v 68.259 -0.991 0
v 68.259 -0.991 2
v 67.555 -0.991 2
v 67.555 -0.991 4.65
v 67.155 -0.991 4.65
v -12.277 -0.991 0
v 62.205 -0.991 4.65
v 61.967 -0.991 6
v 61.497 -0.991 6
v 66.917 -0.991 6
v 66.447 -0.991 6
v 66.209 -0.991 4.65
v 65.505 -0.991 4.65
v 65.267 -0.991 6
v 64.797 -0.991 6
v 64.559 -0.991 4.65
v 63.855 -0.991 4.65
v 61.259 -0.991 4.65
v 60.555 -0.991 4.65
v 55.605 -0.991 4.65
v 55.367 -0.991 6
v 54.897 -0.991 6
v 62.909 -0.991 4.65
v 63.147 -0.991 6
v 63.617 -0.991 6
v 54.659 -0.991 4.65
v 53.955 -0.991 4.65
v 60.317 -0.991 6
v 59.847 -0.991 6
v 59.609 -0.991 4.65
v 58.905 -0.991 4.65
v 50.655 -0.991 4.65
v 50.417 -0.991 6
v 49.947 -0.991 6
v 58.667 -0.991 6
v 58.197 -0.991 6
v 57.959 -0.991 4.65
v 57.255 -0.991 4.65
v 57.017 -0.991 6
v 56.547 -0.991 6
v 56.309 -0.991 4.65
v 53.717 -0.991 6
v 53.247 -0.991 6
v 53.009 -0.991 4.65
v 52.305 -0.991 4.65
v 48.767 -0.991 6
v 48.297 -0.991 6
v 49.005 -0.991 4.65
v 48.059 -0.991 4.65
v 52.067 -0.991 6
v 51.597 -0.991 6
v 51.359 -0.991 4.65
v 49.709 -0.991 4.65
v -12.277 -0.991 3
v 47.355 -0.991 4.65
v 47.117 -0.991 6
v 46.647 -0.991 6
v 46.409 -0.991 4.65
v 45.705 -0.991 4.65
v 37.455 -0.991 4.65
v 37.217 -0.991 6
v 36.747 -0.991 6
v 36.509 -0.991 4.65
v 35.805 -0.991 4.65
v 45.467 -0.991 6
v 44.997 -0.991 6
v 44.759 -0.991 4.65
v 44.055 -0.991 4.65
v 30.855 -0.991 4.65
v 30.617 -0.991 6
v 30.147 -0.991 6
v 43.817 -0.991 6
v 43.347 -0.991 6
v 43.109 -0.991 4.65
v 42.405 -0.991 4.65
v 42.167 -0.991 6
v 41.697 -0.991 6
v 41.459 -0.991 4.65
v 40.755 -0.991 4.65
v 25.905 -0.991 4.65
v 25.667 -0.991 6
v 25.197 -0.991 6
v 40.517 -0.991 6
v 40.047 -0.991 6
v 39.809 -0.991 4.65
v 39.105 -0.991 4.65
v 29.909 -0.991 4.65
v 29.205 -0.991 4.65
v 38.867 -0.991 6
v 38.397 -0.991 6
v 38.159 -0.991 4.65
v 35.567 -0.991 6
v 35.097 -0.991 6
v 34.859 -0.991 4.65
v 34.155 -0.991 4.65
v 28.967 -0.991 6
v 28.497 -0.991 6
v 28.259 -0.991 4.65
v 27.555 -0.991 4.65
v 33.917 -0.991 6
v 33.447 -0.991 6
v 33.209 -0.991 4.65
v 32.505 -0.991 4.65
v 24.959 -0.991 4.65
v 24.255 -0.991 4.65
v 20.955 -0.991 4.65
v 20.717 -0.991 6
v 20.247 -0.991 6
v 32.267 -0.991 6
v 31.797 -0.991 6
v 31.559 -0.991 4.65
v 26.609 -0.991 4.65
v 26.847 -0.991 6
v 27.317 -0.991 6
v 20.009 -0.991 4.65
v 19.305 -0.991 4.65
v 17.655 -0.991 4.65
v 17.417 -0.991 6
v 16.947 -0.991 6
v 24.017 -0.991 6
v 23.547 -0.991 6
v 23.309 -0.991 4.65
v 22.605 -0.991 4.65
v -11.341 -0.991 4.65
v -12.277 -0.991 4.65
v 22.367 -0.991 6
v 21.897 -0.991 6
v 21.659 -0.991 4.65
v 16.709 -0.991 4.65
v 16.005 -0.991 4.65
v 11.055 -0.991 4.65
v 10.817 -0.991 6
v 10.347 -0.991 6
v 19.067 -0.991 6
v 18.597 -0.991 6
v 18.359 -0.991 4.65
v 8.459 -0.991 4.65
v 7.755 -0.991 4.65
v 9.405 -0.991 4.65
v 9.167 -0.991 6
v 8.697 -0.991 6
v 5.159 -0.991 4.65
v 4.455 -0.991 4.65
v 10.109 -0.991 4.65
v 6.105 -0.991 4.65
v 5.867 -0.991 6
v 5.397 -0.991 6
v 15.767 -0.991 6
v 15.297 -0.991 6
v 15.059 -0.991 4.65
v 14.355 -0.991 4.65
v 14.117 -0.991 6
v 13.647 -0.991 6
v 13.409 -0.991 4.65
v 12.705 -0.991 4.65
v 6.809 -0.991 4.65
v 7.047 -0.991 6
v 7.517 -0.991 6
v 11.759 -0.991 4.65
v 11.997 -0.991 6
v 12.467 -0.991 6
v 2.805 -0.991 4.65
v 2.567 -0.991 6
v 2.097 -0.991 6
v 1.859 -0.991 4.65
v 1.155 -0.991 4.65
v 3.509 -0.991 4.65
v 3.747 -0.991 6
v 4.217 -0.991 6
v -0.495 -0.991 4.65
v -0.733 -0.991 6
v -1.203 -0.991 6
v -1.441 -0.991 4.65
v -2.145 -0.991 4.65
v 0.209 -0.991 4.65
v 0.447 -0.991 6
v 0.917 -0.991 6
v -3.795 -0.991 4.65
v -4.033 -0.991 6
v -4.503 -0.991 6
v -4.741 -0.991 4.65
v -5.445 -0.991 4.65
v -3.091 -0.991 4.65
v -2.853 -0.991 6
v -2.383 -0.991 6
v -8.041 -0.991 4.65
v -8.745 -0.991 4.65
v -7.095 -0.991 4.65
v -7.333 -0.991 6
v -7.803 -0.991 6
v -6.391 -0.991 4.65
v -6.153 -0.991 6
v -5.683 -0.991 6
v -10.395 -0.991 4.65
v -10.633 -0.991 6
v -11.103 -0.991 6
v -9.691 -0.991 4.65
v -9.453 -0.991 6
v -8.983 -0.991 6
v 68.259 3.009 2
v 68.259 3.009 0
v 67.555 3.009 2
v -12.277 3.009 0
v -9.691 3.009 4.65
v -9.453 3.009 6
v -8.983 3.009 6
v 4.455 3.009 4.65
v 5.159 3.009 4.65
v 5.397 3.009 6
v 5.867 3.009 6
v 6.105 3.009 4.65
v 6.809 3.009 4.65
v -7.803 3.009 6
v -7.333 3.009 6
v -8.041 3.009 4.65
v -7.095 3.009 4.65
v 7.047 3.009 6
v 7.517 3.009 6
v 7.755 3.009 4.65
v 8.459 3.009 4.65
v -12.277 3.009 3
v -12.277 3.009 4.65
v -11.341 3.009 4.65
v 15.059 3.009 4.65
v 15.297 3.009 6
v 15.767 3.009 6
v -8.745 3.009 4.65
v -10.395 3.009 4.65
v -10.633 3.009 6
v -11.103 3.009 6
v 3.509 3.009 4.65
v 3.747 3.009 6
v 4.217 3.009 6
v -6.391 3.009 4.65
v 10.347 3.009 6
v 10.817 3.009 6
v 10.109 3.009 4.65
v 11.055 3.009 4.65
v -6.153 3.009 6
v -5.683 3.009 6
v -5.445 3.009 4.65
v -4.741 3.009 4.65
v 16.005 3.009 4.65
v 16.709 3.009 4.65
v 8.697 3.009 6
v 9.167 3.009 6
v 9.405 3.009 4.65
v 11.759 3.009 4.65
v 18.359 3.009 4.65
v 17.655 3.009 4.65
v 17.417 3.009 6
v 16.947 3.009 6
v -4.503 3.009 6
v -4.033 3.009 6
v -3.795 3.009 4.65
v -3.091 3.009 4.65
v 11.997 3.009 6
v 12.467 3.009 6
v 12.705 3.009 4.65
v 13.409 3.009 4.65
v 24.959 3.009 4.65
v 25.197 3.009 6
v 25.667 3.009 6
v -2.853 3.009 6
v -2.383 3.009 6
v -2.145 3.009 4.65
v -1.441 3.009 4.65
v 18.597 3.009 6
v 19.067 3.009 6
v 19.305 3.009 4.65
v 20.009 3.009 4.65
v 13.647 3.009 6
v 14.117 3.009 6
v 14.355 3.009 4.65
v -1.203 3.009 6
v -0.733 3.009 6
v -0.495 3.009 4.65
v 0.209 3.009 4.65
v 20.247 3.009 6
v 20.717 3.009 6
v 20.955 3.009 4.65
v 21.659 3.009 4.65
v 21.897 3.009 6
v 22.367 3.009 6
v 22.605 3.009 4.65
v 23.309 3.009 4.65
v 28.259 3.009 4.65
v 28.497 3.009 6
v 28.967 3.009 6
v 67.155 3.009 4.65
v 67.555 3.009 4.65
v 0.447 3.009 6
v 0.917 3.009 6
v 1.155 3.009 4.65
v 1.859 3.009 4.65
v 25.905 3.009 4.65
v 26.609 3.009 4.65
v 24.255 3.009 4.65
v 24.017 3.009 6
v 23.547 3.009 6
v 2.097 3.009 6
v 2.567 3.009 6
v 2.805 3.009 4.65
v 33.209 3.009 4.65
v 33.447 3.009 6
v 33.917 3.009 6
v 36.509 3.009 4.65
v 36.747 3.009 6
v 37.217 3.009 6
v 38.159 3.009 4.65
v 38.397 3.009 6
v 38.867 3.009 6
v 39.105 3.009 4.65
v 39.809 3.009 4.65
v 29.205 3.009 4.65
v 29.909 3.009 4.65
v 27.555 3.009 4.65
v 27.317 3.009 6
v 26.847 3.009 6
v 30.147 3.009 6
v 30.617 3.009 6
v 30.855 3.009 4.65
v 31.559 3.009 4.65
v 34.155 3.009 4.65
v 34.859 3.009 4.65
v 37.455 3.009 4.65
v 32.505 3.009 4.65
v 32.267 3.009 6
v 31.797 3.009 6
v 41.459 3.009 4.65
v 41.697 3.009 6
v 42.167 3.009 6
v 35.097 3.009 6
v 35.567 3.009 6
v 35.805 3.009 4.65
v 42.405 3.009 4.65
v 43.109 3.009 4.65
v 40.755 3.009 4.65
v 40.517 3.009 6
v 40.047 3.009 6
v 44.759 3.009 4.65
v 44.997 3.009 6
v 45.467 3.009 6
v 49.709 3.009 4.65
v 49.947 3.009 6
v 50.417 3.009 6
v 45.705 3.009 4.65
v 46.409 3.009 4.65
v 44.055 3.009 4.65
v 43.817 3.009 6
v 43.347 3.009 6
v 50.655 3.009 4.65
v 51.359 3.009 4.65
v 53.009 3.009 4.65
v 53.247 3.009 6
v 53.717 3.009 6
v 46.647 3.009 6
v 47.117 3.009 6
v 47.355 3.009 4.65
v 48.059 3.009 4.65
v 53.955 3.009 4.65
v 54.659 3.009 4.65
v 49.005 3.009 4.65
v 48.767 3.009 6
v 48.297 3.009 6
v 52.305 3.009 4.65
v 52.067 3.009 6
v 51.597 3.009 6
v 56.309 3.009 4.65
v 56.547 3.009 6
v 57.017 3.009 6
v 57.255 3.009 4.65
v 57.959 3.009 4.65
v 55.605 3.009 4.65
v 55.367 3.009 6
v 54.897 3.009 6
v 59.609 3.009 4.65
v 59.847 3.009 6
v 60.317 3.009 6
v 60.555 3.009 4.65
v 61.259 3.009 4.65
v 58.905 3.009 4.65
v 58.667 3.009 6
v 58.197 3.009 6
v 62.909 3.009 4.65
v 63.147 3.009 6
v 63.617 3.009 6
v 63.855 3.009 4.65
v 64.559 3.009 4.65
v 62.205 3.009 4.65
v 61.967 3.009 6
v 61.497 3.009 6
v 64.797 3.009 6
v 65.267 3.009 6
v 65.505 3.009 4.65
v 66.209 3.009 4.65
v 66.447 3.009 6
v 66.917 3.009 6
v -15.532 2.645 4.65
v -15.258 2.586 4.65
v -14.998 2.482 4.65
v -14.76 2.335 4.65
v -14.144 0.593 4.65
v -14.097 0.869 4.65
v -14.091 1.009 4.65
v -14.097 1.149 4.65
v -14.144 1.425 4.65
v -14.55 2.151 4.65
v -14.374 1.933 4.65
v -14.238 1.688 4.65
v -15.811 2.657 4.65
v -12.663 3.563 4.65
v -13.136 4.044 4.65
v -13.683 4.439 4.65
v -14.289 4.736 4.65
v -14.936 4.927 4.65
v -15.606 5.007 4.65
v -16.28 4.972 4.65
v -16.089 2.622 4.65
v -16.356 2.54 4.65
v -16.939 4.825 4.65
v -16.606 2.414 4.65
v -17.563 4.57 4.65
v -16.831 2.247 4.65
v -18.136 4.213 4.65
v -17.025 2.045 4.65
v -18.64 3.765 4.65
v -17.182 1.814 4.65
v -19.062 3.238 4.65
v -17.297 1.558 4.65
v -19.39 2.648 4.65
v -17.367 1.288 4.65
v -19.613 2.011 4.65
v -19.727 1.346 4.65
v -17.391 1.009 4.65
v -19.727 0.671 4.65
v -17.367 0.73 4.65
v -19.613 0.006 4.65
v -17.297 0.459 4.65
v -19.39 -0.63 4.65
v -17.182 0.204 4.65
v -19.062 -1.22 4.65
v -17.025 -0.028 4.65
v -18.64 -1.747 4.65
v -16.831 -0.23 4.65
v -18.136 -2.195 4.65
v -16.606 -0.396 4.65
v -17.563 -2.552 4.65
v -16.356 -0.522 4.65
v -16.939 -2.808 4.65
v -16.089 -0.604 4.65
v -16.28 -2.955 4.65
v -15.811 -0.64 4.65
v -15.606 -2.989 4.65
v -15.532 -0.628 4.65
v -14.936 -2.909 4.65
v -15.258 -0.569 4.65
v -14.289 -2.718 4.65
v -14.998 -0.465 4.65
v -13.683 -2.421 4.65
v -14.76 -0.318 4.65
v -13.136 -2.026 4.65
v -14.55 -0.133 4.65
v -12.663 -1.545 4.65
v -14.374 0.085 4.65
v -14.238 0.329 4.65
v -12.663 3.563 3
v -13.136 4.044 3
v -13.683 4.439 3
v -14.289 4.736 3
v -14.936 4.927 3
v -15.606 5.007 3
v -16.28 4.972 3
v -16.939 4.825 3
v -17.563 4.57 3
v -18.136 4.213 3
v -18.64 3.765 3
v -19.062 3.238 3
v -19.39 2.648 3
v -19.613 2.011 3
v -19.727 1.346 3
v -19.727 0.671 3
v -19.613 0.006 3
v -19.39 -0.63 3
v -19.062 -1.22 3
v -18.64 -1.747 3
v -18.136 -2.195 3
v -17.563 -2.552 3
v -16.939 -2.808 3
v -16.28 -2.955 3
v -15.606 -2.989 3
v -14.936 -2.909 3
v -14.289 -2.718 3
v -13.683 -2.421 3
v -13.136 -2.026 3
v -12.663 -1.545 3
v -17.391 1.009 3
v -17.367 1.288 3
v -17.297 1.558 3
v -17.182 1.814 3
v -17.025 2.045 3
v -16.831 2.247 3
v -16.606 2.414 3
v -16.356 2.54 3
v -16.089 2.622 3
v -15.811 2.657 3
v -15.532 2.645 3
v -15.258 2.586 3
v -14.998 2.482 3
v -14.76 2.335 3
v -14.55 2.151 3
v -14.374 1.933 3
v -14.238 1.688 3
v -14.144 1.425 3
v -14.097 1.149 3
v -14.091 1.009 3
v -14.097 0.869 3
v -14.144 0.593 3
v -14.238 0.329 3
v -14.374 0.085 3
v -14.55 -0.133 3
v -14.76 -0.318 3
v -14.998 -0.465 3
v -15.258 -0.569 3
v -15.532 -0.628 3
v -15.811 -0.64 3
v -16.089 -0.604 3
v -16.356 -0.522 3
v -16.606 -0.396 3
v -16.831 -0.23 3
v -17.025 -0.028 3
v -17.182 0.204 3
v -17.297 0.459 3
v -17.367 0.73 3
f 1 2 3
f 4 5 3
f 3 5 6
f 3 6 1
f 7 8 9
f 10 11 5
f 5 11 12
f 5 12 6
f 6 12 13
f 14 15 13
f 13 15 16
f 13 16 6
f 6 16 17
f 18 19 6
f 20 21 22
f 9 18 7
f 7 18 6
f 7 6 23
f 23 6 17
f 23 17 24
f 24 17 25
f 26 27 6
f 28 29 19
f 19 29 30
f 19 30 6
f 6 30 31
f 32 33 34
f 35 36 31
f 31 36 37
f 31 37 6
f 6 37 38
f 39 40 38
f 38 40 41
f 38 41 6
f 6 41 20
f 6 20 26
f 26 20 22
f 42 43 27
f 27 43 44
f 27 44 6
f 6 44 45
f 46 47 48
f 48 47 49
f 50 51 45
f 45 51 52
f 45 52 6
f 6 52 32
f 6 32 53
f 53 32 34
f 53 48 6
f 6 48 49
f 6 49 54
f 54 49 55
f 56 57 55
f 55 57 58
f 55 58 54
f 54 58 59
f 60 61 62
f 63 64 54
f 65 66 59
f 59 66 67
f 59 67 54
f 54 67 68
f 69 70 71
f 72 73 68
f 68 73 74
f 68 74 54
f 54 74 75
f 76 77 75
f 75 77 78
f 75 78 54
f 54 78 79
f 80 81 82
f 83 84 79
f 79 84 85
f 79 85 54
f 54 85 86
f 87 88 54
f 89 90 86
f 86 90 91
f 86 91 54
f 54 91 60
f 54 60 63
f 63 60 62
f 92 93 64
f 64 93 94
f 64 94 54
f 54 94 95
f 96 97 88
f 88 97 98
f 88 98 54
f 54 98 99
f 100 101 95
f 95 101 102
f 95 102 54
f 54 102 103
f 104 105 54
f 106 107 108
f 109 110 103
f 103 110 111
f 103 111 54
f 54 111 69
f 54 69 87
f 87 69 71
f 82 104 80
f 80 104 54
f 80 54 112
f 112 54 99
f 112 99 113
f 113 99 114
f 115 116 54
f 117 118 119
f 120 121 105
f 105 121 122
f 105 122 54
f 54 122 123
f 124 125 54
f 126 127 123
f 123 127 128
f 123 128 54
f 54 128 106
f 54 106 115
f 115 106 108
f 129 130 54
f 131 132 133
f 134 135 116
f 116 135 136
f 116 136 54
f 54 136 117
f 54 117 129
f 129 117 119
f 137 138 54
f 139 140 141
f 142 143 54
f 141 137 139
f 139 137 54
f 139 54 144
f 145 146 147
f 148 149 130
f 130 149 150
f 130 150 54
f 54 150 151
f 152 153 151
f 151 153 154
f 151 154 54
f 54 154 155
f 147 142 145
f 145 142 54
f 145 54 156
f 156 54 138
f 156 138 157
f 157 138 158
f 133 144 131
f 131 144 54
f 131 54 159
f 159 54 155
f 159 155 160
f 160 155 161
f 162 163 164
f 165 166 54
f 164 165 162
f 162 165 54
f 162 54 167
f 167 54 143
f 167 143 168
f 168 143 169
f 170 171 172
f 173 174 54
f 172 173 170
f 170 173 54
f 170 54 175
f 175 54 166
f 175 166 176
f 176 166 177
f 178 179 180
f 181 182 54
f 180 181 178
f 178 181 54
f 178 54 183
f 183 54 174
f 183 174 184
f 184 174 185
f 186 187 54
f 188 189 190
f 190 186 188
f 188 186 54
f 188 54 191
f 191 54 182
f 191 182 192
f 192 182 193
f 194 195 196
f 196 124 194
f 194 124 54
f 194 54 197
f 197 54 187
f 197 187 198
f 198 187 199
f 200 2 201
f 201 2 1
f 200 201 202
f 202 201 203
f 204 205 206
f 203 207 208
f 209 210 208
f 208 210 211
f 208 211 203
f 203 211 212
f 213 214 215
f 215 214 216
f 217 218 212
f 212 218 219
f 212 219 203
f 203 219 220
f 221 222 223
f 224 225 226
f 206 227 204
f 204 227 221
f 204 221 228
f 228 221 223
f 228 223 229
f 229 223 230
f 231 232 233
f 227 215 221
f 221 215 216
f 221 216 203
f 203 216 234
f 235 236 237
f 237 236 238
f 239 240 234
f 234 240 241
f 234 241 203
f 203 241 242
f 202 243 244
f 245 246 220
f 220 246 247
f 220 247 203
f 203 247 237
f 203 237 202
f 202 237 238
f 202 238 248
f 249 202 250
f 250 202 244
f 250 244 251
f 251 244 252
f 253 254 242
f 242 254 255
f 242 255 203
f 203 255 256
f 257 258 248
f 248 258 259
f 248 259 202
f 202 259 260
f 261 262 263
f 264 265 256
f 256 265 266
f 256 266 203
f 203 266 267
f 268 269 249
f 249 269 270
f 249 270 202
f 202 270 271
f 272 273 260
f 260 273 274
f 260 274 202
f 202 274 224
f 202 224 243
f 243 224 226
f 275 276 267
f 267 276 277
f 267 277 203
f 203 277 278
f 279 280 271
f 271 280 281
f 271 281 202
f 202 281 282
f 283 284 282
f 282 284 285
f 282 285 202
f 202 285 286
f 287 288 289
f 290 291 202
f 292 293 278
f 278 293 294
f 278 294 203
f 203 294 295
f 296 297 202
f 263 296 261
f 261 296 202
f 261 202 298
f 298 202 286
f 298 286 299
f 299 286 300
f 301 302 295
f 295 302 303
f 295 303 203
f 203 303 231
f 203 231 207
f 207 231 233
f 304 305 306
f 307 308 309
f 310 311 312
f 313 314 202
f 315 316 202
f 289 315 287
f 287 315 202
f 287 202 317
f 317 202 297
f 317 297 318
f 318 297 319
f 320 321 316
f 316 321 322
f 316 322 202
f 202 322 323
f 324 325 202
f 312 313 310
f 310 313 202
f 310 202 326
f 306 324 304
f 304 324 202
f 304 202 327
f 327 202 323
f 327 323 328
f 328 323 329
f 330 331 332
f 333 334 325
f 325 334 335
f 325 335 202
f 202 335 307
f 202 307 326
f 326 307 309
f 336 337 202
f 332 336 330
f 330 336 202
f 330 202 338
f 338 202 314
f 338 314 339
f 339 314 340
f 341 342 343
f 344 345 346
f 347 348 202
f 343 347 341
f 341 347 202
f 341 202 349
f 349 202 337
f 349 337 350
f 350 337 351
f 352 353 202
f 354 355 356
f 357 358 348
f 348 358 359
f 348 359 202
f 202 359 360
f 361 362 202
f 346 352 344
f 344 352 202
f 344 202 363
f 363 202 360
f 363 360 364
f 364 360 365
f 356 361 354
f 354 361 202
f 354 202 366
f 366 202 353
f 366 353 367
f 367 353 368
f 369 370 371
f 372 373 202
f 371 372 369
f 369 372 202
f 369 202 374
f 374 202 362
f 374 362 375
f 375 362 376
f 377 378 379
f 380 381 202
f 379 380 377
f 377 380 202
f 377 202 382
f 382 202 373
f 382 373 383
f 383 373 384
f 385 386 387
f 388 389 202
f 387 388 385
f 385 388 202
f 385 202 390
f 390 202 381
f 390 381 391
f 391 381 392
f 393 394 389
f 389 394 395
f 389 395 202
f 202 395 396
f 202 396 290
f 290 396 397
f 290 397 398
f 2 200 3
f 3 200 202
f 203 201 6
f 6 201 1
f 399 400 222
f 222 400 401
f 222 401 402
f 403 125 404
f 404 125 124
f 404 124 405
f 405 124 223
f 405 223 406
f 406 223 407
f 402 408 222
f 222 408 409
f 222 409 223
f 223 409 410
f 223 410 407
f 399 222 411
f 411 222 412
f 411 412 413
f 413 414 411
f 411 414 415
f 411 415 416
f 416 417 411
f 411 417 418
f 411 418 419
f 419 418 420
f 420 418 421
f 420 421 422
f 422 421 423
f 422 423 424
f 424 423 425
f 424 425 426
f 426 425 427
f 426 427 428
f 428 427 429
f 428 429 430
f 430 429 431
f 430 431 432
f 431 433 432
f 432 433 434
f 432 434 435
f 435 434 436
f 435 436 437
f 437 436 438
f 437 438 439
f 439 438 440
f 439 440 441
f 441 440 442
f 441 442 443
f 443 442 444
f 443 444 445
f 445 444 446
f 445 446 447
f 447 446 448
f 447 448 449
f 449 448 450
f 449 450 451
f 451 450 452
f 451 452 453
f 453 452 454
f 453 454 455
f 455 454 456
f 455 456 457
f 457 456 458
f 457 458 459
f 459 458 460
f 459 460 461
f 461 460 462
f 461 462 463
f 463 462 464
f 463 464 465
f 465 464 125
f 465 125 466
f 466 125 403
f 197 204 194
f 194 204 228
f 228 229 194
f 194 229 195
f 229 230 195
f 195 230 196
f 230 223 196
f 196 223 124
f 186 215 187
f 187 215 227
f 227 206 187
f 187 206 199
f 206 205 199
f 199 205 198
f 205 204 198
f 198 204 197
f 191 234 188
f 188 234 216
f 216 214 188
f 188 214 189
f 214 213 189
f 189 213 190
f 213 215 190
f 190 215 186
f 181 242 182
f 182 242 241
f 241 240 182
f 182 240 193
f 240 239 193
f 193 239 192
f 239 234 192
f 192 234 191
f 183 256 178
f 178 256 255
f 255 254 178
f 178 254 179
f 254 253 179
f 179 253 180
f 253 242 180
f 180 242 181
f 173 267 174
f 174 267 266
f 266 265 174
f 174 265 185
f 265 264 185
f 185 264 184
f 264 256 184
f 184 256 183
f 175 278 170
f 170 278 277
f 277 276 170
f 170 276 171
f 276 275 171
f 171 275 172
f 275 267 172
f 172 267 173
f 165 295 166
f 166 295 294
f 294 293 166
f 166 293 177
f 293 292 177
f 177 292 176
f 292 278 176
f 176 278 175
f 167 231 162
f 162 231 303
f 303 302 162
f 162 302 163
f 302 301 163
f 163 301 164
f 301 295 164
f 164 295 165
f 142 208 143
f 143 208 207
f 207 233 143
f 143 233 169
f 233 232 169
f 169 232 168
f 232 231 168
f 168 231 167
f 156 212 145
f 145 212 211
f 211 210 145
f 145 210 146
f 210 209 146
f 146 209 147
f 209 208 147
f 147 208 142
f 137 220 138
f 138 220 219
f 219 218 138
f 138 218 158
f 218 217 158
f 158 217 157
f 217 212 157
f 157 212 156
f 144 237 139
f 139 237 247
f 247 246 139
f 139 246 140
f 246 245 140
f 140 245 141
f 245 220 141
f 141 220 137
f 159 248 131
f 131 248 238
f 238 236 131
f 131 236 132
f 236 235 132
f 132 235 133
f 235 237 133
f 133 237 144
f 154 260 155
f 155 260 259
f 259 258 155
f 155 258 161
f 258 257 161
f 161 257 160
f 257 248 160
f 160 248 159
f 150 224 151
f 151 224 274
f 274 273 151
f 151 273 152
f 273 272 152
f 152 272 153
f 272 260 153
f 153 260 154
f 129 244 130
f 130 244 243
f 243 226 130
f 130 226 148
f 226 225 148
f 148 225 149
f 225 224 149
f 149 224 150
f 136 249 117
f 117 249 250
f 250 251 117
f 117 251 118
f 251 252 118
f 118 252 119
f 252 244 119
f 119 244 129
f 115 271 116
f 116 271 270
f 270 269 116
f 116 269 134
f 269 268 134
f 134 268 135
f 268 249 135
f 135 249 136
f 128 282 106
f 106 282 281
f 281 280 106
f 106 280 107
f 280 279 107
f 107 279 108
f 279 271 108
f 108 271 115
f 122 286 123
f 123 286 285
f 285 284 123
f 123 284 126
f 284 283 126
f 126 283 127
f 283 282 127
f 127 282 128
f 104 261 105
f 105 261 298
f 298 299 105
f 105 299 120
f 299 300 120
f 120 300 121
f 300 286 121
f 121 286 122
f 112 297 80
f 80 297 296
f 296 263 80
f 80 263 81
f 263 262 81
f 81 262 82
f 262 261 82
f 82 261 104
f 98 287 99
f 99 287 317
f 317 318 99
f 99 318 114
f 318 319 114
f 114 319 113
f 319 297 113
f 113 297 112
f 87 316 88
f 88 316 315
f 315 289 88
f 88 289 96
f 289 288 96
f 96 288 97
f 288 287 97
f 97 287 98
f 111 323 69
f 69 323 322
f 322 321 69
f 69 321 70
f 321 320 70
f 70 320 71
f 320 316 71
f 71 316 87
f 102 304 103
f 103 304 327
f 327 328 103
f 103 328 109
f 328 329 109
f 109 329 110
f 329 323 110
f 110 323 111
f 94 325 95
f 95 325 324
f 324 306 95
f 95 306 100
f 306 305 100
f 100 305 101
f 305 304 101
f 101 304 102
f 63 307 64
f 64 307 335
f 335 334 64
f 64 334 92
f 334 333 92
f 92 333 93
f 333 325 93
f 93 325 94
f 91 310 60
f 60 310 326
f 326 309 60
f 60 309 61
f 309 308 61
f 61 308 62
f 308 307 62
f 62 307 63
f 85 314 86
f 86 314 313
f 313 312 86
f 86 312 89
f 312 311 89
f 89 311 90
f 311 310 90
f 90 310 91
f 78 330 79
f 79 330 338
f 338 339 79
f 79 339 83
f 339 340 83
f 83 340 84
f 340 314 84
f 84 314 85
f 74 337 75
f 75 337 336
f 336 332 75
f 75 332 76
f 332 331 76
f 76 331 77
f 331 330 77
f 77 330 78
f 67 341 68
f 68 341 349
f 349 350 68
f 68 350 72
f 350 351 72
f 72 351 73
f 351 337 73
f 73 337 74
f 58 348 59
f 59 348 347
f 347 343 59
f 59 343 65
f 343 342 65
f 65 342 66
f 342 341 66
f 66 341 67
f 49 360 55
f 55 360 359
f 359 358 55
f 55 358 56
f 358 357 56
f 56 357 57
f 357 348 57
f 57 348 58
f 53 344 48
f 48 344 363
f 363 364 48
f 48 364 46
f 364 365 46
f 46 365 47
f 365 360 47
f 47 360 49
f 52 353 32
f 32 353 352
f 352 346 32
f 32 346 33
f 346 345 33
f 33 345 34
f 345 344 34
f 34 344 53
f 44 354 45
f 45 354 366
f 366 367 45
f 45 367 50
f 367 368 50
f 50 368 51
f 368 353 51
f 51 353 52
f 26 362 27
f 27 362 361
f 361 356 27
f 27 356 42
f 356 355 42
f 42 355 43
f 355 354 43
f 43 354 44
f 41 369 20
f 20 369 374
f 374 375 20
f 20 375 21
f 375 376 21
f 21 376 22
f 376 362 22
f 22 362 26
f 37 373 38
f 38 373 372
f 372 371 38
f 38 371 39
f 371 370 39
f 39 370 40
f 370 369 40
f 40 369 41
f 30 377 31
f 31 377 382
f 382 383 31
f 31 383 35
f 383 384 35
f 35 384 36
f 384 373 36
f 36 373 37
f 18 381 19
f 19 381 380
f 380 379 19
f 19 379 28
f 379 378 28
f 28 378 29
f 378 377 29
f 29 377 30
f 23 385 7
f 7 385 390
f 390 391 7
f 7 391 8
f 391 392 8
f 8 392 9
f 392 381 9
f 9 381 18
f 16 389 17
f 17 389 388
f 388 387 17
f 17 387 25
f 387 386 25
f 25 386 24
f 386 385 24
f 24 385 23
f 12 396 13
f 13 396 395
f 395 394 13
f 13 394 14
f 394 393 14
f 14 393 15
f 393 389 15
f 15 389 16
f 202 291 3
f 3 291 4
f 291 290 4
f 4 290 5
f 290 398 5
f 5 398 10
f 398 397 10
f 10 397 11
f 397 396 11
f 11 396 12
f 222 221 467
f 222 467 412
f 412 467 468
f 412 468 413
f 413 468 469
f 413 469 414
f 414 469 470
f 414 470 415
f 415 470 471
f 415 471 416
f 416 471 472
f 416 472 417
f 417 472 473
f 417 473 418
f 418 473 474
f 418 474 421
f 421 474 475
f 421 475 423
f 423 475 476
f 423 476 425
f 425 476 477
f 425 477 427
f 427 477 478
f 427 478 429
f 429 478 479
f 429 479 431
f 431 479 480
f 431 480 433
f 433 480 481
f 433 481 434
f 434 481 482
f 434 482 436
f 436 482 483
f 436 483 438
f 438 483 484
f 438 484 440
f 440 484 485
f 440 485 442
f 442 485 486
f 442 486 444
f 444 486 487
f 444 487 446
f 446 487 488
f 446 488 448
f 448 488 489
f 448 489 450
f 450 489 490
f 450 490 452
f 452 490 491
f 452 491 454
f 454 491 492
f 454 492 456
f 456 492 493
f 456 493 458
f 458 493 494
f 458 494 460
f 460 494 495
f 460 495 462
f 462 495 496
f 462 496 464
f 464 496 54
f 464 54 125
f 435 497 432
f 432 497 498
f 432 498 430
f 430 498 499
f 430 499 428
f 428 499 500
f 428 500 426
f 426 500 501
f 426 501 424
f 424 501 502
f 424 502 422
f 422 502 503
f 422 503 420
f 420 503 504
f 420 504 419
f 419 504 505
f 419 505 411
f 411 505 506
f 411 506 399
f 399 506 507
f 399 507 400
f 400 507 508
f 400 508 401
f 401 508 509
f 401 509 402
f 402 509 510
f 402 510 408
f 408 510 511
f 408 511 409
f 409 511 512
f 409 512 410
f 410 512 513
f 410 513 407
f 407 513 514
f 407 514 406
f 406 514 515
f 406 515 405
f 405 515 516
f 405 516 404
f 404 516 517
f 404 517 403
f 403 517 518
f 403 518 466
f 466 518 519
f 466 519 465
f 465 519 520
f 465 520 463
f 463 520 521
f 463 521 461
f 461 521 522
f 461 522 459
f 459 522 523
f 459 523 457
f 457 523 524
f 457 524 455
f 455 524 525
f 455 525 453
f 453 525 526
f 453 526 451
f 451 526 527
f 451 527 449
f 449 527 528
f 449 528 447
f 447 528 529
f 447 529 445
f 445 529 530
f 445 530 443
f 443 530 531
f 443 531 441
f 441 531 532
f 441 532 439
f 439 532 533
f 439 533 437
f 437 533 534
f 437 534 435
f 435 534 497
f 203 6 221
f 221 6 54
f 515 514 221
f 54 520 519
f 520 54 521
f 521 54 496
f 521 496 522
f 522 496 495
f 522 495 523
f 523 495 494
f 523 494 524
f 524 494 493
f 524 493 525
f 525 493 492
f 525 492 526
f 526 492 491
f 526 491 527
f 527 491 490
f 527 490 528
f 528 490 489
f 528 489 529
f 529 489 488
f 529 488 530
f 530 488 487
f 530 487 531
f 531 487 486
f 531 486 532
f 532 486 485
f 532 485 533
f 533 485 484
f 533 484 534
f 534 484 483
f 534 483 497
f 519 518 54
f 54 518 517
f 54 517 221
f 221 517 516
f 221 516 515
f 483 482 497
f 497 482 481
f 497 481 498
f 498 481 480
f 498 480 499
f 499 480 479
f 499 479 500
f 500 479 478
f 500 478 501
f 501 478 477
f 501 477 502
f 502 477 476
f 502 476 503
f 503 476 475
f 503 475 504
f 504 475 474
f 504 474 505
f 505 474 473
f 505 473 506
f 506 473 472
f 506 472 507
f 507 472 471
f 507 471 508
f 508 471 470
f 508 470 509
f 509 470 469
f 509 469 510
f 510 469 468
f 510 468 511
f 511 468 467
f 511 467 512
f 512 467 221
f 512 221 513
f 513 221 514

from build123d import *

# Parameters (mm, degrees)
SKETCH1_W               = 80
SKETCH1_H               = 4
BOSS_EXTRUDE1_DEPTH     = 2
BOSS_EXTRUDE2_DEPTH     = 4
LPATTERN1_COUNT         = 48
LPATTERN1_PITCH         = 1.65
SKETCH5_R               = 1.65
BOSS_EXTRUDE3_DEPTH     = 4.65
CUT_EXTRUDE1_DEPTH      = 69.784209361
CUT_EXTRUDE1_DEPTH_BACK = 69.784209361
SKETCH6_W               = 7.464101616
SKETCH6_H               = 3


with BuildPart() as part:
    # Sketch1 → Boss-Extrude1 (new body)
    with BuildSketch(Plane.XY):
        with Locations((28.258826956, 1.008805964)):
            Rectangle(SKETCH1_W, SKETCH1_H)
    extrude(amount=BOSS_EXTRUDE1_DEPTH)

    # Sketch4 → Boss-Extrude2 (add)
    with BuildSketch(Plane(origin=(0, 3.008805964, 0), x_dir=(1, 0, 0), z_dir=(0, 1, 0))):
        Polygon((-11.341173044, -4.65), (-11.10313162, -6), (-10.63313162, -6), (-10.395090196, -4.65), (-9.995090196, -4.65), (-9.995090196, 0), (-11.741173044, 0), (-11.741173044, -4.65), align=None)
    boss_extrude2 = extrude(amount=-BOSS_EXTRUDE2_DEPTH)

    # LPattern1: Boss-Extrude2 ×48
    with Locations(*[(i * LPATTERN1_PITCH, 0, 0) for i in range(1, LPATTERN1_COUNT)]):
        add(boss_extrude2)

    # Sketch5 → Boss-Extrude3 (add)
    with BuildSketch(Plane.XY):
        with BuildLine():
            Line((-11.741173044, 3.008805964), (-12.277071428, 3.008805964))
            ThreePointArc((-12.277071428, 3.008805964), (-19.741173044, 1.008805964), (-12.277071428, -0.991194036))
            Line((-12.277071428, -0.991194036), (-11.741173044, -0.991194036))
            Line((-11.741173044, -0.991194036), (-11.741173044, 3.008805964))
        make_face()
        with Locations((-15.741173044, 1.008805964)):
            Circle(SKETCH5_R, mode=Mode.SUBTRACT)
    extrude(amount=BOSS_EXTRUDE3_DEPTH)

    # Sketch6 → Cut-Extrude1 (cut, two sides: drawn at the far end of the back side and taken through both)
    with BuildSketch(Plane(origin=(0, 3.008805964, 0), x_dir=(1, 0, 0), z_dir=(0, 1, 0)).offset(-CUT_EXTRUDE1_DEPTH_BACK)):
        with Locations((-16.009122236, -1.5)):
            Rectangle(SKETCH6_W, SKETCH6_H)
    extrude(amount=CUT_EXTRUDE1_DEPTH + CUT_EXTRUDE1_DEPTH_BACK, mode=Mode.SUBTRACT)


solid = part.part
